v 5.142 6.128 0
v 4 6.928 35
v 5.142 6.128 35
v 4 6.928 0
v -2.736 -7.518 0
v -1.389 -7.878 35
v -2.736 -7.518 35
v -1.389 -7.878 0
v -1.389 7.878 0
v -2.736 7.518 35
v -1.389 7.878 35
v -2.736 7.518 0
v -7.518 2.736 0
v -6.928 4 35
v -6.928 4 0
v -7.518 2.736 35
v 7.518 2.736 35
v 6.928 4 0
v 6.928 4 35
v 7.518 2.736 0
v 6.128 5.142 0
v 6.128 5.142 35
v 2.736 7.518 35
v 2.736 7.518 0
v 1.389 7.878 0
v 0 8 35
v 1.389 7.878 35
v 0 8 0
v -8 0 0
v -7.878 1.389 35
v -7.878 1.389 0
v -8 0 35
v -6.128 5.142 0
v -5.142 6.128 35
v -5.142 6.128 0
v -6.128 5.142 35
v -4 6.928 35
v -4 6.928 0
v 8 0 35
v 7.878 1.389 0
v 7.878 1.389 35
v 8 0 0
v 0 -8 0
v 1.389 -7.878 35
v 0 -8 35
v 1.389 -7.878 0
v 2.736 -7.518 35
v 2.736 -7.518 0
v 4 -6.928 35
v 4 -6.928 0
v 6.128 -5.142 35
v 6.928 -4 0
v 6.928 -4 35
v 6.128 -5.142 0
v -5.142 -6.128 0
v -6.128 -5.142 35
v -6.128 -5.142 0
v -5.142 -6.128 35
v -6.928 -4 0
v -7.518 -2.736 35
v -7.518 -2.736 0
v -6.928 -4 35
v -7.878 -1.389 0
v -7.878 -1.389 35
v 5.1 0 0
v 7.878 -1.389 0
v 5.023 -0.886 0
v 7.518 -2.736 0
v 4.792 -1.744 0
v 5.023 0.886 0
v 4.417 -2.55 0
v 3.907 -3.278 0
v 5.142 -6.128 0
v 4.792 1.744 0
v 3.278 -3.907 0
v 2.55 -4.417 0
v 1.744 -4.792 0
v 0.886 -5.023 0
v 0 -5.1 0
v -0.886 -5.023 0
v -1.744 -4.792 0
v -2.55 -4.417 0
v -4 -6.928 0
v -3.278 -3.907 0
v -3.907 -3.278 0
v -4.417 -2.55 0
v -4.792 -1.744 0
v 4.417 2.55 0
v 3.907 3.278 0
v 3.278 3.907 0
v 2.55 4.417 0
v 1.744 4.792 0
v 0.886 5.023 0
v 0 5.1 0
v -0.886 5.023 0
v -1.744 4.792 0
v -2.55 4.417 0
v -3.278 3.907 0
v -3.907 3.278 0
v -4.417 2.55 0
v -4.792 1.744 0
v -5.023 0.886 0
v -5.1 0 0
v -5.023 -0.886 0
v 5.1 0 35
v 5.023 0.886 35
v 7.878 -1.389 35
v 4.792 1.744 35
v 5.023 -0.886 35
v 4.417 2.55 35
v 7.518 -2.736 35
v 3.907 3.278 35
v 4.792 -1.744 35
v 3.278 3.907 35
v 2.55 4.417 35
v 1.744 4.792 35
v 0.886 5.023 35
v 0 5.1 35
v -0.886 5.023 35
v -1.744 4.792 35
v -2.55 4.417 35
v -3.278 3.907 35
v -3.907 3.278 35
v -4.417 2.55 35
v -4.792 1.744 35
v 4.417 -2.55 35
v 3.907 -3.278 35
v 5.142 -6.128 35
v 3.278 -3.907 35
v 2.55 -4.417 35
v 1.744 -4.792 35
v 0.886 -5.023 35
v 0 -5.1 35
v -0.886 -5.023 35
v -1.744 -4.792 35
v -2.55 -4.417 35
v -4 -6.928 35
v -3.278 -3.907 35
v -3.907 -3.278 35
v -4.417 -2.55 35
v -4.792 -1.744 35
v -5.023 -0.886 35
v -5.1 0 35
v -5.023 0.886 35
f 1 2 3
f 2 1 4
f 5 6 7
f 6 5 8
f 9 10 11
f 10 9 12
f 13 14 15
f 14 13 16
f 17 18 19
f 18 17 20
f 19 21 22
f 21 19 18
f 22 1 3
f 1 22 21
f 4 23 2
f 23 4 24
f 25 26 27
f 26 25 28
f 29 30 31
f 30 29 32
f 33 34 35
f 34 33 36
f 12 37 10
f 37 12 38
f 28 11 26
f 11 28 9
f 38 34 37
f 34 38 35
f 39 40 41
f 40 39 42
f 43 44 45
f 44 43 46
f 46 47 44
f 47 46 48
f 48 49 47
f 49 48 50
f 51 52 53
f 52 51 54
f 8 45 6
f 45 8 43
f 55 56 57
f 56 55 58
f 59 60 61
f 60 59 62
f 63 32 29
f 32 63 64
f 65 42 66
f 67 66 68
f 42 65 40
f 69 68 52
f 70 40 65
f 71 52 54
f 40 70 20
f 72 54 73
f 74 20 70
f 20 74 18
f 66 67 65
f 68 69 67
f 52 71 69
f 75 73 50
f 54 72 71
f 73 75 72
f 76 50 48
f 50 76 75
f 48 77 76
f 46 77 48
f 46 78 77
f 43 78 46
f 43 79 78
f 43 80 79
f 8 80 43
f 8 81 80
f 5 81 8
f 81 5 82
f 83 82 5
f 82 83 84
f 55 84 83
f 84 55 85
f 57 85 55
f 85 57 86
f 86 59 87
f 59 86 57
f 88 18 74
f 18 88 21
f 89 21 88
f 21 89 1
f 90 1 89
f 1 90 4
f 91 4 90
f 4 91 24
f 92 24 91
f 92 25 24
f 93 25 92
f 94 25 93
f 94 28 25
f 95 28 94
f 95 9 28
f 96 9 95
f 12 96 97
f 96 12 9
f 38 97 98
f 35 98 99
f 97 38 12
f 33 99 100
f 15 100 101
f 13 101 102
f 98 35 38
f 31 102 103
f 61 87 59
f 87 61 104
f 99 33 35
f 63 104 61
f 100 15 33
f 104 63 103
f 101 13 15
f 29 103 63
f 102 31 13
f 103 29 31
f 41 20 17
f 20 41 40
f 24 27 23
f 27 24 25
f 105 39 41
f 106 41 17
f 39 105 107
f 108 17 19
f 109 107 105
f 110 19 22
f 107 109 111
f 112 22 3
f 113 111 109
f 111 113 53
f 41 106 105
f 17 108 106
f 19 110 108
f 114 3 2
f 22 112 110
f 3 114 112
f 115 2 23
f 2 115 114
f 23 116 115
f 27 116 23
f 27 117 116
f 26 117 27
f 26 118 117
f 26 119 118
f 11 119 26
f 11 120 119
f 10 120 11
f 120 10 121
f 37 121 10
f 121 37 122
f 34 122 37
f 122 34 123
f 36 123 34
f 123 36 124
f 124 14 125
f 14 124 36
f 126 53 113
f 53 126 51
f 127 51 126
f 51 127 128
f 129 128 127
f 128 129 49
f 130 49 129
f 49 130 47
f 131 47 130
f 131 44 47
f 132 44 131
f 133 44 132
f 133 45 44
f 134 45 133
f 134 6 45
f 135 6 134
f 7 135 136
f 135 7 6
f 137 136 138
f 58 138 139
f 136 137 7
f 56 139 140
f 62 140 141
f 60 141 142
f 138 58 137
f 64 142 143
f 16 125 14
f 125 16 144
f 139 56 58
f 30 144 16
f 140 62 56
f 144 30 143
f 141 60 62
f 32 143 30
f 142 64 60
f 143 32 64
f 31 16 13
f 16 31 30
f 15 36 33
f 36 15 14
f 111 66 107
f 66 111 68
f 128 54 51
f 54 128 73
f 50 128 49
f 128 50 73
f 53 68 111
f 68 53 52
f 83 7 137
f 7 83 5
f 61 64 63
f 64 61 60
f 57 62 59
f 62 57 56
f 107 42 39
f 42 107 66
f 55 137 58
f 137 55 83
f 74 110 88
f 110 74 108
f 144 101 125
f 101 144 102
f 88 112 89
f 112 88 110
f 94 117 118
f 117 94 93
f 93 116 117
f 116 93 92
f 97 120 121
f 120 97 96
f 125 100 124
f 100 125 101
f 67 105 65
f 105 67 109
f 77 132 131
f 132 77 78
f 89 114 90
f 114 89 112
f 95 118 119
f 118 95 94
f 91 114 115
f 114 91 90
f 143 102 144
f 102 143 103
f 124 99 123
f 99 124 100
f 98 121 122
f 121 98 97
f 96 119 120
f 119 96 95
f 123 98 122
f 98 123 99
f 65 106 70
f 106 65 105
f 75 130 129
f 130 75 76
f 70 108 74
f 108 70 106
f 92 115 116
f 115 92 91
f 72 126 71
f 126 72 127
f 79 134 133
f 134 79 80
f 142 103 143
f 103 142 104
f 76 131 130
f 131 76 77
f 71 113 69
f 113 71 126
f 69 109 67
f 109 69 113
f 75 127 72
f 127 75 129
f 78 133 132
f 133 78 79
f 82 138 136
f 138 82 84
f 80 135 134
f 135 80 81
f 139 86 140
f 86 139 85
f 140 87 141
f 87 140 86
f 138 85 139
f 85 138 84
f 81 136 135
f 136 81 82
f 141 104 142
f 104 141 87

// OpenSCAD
$fn=36;
difference(){
    cylinder(35,8,8);
    cylinder(35,5.1,5.1);
}    
